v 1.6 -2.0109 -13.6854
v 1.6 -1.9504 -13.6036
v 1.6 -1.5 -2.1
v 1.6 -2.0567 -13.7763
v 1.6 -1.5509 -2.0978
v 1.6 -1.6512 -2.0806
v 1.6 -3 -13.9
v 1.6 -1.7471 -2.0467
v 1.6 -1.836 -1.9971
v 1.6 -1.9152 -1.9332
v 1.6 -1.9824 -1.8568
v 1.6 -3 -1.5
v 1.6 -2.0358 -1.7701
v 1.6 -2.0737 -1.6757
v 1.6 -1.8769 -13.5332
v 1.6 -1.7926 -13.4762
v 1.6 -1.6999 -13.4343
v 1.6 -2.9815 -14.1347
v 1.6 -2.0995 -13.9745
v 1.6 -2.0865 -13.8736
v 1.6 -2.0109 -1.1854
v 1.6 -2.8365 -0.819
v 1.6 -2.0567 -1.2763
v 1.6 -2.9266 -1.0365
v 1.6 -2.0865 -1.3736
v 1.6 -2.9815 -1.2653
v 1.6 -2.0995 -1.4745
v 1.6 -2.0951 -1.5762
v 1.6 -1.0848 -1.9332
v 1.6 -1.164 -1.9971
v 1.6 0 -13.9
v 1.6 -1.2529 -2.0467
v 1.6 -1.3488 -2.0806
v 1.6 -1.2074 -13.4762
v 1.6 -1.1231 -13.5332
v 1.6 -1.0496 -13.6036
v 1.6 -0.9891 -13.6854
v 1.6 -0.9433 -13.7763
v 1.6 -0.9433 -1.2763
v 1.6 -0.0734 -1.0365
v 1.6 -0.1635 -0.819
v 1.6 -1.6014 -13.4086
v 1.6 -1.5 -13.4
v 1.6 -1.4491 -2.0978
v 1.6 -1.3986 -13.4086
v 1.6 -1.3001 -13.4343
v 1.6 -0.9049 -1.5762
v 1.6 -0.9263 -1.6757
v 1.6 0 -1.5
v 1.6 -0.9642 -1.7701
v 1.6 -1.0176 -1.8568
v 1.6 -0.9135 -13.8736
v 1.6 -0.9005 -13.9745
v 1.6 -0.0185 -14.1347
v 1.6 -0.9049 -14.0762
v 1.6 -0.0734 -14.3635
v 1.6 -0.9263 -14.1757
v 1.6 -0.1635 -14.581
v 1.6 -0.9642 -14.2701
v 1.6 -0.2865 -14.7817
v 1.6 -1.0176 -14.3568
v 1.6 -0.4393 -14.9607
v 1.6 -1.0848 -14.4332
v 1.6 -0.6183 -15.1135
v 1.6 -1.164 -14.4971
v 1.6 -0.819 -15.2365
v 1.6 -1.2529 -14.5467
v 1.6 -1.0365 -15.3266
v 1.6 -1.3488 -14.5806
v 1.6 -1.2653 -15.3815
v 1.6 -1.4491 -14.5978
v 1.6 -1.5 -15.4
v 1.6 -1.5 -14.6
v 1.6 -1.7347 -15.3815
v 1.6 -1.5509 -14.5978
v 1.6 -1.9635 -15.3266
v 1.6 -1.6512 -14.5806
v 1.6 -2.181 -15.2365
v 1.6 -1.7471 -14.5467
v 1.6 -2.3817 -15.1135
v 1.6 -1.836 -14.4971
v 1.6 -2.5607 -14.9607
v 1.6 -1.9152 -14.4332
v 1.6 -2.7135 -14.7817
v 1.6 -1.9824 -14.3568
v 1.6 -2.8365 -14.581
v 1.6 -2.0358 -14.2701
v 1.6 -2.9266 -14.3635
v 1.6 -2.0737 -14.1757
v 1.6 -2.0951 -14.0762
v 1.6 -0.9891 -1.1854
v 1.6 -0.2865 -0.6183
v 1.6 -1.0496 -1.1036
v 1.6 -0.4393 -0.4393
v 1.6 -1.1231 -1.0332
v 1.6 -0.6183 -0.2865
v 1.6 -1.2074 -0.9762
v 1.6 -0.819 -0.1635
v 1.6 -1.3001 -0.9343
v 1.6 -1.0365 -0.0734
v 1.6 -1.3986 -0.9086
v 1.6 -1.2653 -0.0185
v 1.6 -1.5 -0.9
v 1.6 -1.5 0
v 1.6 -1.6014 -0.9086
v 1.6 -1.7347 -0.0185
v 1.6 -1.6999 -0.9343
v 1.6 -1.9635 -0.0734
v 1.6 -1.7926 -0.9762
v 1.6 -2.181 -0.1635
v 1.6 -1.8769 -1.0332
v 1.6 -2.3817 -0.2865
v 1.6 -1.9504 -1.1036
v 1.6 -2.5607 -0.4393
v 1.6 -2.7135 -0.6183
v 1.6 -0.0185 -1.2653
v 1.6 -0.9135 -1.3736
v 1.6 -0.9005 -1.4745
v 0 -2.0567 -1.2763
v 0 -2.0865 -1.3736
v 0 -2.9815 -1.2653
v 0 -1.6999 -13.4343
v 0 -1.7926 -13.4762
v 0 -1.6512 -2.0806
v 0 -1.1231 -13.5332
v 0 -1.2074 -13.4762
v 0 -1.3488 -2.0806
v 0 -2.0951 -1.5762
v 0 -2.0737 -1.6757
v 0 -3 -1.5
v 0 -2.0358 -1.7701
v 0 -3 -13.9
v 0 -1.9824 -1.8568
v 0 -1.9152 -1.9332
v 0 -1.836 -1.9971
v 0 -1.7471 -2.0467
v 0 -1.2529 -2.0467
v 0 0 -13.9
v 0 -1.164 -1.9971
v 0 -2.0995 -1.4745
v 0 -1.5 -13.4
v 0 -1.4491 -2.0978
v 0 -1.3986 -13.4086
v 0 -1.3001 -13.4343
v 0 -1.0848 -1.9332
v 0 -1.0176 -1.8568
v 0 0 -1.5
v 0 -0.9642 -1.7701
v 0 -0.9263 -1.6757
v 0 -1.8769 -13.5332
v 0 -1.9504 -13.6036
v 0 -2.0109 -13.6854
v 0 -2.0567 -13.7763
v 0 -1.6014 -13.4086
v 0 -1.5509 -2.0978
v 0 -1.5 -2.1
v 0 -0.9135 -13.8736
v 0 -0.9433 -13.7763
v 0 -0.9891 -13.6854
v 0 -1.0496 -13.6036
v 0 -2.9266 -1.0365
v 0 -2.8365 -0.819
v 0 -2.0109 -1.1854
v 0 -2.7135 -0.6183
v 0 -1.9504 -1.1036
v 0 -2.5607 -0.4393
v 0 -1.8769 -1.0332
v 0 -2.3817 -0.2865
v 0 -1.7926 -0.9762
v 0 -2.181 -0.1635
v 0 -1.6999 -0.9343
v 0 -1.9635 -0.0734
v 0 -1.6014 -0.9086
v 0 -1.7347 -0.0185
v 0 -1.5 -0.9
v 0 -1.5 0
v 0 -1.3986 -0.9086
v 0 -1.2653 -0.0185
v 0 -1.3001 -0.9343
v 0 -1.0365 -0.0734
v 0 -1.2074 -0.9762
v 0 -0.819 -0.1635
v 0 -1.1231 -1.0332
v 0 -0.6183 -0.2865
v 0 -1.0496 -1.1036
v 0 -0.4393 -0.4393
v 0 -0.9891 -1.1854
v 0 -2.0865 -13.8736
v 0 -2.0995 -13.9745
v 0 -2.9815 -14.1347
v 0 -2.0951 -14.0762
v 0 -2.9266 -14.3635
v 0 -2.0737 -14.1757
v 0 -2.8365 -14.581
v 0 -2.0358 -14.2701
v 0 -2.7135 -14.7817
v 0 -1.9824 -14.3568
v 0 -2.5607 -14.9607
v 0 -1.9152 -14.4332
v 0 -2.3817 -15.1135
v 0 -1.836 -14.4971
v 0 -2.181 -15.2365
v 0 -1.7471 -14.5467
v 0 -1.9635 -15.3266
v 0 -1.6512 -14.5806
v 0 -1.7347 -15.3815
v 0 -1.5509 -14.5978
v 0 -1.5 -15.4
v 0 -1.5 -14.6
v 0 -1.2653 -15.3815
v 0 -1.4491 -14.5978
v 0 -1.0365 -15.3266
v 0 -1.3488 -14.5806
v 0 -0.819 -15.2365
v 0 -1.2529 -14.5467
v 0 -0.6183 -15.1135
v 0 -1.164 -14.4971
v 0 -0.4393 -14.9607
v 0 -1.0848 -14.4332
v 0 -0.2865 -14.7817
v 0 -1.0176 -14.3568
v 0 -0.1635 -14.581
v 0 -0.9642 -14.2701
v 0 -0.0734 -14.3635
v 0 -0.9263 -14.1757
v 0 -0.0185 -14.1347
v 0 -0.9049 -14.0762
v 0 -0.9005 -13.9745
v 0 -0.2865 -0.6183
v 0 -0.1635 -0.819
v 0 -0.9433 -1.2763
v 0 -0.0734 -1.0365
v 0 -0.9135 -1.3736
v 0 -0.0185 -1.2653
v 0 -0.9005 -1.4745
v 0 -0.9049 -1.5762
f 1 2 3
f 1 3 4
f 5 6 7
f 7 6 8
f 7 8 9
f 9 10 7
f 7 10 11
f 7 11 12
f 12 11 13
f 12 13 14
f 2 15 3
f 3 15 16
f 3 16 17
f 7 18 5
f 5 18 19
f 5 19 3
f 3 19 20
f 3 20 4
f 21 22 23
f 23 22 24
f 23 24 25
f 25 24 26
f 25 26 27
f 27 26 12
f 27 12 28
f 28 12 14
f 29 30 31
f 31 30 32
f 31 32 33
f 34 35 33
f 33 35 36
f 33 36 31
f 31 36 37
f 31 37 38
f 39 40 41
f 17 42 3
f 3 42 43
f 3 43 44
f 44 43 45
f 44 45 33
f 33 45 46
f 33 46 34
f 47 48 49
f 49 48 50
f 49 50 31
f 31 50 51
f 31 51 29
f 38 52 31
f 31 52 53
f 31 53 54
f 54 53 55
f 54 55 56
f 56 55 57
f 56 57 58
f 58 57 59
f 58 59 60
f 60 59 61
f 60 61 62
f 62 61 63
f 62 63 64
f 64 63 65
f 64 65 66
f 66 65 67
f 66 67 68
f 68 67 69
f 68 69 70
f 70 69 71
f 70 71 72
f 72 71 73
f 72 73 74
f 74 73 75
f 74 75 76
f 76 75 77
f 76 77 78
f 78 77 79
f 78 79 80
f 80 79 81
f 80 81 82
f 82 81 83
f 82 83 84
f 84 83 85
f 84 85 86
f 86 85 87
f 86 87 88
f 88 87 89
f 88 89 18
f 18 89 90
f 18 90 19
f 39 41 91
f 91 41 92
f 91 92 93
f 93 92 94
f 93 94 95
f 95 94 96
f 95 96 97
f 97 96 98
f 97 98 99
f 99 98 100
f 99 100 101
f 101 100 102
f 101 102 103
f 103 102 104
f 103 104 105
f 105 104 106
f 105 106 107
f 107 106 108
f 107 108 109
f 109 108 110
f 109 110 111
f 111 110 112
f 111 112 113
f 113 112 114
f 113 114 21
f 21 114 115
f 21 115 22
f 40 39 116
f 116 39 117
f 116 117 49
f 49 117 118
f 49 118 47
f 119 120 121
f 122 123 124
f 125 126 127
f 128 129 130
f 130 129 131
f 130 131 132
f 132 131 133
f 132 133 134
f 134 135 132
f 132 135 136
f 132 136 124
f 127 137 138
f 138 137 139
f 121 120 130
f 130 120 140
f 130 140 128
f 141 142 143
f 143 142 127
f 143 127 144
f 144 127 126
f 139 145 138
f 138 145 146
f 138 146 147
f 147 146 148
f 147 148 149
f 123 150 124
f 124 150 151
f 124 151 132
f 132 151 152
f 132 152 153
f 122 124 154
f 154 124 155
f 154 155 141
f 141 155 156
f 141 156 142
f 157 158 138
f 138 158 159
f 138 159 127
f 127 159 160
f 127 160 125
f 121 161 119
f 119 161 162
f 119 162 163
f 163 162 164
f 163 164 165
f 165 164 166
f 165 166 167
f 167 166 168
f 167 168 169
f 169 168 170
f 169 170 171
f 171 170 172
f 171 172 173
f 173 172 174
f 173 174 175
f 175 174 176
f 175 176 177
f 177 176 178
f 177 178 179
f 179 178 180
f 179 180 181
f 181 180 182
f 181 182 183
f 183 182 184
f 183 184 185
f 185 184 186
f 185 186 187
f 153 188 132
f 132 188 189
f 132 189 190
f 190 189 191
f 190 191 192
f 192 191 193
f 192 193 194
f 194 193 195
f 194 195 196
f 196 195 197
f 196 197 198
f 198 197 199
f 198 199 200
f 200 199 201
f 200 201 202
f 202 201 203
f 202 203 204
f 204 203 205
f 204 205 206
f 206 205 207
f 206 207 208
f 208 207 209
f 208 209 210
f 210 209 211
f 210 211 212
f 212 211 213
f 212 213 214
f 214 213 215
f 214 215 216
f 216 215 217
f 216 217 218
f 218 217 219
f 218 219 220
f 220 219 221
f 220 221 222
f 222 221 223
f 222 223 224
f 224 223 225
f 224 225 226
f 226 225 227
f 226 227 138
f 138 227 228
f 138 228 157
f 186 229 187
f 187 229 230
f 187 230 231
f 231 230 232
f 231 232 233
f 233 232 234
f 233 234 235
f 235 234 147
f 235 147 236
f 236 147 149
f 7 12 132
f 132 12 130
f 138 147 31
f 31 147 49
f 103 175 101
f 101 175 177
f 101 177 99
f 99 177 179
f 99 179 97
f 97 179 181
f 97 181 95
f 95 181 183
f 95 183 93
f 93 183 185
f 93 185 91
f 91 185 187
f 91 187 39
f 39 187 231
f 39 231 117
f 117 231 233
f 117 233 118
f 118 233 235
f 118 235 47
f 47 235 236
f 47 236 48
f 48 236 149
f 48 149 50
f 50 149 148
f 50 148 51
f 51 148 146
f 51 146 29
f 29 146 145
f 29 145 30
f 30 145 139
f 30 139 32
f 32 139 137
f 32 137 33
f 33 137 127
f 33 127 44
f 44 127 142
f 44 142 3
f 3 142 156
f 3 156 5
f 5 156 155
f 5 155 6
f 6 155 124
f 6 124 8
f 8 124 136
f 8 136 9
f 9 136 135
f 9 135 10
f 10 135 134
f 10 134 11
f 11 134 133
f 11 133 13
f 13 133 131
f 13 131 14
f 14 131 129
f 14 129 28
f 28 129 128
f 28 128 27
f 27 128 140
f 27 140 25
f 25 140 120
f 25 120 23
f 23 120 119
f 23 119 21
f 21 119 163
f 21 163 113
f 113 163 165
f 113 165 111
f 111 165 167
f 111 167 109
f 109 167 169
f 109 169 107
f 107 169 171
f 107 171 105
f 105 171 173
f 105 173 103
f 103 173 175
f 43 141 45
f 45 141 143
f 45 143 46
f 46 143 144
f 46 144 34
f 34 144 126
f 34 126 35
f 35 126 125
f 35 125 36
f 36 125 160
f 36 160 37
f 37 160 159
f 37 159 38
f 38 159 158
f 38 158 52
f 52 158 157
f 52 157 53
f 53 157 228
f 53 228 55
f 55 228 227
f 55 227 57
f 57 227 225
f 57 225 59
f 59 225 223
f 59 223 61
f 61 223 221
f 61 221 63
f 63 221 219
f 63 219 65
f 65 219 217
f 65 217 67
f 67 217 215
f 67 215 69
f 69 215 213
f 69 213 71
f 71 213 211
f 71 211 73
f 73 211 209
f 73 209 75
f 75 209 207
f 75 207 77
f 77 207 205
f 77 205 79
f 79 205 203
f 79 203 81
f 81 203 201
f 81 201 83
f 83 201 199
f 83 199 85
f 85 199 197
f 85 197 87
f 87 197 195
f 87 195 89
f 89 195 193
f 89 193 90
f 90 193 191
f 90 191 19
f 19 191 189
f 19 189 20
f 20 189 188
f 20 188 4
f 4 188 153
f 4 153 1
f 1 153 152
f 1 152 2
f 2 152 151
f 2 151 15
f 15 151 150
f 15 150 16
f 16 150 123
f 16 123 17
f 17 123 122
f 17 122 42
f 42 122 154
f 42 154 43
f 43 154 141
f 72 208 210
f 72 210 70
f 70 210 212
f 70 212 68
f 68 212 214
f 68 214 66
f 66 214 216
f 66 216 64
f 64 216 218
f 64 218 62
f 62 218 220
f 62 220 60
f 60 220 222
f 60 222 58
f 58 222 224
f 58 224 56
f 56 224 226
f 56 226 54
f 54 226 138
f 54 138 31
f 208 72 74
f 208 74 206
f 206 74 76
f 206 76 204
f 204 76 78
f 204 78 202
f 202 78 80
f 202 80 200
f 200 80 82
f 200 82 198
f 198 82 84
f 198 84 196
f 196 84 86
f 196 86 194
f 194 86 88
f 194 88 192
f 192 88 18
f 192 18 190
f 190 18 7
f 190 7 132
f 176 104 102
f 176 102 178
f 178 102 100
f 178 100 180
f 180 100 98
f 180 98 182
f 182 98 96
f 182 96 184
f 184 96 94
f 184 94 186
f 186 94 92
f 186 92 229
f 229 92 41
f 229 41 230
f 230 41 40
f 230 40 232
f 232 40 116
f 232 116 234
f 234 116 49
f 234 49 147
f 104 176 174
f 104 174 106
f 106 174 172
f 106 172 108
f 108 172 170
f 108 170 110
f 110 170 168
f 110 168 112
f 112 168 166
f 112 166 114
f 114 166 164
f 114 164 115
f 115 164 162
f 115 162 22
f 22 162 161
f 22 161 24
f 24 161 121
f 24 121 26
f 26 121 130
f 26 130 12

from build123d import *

# Parameters (mm, degrees)
SKETCH_1_W      = 15.4
SKETCH_1_H      = 3
SKETCH_1_R      = 0.6
EXTRUDE_1_DEPTH = 1.6
FILLET_1_R      = 1.5


with BuildPart() as part:
    # 草图1 → 凸台-拉伸1 (new body)
    with BuildSketch(Plane(origin=(0, 0, 0), x_dir=(0, 0, -1), z_dir=(1, 0, 0))):
        with Locations((7.7, -1.5)):
            Rectangle(SKETCH_1_W, SKETCH_1_H)
        with Locations((1.5, -1.5)):
            Circle(SKETCH_1_R, mode=Mode.SUBTRACT)
        with Locations((14, -1.5)):
            Circle(SKETCH_1_R, mode=Mode.SUBTRACT)
    extrude(amount=EXTRUDE_1_DEPTH)

    # 圆角1
    fillet_1_edges = [part.edges().sort_by_distance(p)[0] for p in [
        (0.8, -3, 0),
        (0.8, 0, 0),
        (0.8, -3, -15.4),
        (0.8, 0, -15.4),
    ]]
    fillet(fillet_1_edges, radius=FILLET_1_R - 0.0001)  # a hair under: the kernel refuses the full size


solid = part.part
